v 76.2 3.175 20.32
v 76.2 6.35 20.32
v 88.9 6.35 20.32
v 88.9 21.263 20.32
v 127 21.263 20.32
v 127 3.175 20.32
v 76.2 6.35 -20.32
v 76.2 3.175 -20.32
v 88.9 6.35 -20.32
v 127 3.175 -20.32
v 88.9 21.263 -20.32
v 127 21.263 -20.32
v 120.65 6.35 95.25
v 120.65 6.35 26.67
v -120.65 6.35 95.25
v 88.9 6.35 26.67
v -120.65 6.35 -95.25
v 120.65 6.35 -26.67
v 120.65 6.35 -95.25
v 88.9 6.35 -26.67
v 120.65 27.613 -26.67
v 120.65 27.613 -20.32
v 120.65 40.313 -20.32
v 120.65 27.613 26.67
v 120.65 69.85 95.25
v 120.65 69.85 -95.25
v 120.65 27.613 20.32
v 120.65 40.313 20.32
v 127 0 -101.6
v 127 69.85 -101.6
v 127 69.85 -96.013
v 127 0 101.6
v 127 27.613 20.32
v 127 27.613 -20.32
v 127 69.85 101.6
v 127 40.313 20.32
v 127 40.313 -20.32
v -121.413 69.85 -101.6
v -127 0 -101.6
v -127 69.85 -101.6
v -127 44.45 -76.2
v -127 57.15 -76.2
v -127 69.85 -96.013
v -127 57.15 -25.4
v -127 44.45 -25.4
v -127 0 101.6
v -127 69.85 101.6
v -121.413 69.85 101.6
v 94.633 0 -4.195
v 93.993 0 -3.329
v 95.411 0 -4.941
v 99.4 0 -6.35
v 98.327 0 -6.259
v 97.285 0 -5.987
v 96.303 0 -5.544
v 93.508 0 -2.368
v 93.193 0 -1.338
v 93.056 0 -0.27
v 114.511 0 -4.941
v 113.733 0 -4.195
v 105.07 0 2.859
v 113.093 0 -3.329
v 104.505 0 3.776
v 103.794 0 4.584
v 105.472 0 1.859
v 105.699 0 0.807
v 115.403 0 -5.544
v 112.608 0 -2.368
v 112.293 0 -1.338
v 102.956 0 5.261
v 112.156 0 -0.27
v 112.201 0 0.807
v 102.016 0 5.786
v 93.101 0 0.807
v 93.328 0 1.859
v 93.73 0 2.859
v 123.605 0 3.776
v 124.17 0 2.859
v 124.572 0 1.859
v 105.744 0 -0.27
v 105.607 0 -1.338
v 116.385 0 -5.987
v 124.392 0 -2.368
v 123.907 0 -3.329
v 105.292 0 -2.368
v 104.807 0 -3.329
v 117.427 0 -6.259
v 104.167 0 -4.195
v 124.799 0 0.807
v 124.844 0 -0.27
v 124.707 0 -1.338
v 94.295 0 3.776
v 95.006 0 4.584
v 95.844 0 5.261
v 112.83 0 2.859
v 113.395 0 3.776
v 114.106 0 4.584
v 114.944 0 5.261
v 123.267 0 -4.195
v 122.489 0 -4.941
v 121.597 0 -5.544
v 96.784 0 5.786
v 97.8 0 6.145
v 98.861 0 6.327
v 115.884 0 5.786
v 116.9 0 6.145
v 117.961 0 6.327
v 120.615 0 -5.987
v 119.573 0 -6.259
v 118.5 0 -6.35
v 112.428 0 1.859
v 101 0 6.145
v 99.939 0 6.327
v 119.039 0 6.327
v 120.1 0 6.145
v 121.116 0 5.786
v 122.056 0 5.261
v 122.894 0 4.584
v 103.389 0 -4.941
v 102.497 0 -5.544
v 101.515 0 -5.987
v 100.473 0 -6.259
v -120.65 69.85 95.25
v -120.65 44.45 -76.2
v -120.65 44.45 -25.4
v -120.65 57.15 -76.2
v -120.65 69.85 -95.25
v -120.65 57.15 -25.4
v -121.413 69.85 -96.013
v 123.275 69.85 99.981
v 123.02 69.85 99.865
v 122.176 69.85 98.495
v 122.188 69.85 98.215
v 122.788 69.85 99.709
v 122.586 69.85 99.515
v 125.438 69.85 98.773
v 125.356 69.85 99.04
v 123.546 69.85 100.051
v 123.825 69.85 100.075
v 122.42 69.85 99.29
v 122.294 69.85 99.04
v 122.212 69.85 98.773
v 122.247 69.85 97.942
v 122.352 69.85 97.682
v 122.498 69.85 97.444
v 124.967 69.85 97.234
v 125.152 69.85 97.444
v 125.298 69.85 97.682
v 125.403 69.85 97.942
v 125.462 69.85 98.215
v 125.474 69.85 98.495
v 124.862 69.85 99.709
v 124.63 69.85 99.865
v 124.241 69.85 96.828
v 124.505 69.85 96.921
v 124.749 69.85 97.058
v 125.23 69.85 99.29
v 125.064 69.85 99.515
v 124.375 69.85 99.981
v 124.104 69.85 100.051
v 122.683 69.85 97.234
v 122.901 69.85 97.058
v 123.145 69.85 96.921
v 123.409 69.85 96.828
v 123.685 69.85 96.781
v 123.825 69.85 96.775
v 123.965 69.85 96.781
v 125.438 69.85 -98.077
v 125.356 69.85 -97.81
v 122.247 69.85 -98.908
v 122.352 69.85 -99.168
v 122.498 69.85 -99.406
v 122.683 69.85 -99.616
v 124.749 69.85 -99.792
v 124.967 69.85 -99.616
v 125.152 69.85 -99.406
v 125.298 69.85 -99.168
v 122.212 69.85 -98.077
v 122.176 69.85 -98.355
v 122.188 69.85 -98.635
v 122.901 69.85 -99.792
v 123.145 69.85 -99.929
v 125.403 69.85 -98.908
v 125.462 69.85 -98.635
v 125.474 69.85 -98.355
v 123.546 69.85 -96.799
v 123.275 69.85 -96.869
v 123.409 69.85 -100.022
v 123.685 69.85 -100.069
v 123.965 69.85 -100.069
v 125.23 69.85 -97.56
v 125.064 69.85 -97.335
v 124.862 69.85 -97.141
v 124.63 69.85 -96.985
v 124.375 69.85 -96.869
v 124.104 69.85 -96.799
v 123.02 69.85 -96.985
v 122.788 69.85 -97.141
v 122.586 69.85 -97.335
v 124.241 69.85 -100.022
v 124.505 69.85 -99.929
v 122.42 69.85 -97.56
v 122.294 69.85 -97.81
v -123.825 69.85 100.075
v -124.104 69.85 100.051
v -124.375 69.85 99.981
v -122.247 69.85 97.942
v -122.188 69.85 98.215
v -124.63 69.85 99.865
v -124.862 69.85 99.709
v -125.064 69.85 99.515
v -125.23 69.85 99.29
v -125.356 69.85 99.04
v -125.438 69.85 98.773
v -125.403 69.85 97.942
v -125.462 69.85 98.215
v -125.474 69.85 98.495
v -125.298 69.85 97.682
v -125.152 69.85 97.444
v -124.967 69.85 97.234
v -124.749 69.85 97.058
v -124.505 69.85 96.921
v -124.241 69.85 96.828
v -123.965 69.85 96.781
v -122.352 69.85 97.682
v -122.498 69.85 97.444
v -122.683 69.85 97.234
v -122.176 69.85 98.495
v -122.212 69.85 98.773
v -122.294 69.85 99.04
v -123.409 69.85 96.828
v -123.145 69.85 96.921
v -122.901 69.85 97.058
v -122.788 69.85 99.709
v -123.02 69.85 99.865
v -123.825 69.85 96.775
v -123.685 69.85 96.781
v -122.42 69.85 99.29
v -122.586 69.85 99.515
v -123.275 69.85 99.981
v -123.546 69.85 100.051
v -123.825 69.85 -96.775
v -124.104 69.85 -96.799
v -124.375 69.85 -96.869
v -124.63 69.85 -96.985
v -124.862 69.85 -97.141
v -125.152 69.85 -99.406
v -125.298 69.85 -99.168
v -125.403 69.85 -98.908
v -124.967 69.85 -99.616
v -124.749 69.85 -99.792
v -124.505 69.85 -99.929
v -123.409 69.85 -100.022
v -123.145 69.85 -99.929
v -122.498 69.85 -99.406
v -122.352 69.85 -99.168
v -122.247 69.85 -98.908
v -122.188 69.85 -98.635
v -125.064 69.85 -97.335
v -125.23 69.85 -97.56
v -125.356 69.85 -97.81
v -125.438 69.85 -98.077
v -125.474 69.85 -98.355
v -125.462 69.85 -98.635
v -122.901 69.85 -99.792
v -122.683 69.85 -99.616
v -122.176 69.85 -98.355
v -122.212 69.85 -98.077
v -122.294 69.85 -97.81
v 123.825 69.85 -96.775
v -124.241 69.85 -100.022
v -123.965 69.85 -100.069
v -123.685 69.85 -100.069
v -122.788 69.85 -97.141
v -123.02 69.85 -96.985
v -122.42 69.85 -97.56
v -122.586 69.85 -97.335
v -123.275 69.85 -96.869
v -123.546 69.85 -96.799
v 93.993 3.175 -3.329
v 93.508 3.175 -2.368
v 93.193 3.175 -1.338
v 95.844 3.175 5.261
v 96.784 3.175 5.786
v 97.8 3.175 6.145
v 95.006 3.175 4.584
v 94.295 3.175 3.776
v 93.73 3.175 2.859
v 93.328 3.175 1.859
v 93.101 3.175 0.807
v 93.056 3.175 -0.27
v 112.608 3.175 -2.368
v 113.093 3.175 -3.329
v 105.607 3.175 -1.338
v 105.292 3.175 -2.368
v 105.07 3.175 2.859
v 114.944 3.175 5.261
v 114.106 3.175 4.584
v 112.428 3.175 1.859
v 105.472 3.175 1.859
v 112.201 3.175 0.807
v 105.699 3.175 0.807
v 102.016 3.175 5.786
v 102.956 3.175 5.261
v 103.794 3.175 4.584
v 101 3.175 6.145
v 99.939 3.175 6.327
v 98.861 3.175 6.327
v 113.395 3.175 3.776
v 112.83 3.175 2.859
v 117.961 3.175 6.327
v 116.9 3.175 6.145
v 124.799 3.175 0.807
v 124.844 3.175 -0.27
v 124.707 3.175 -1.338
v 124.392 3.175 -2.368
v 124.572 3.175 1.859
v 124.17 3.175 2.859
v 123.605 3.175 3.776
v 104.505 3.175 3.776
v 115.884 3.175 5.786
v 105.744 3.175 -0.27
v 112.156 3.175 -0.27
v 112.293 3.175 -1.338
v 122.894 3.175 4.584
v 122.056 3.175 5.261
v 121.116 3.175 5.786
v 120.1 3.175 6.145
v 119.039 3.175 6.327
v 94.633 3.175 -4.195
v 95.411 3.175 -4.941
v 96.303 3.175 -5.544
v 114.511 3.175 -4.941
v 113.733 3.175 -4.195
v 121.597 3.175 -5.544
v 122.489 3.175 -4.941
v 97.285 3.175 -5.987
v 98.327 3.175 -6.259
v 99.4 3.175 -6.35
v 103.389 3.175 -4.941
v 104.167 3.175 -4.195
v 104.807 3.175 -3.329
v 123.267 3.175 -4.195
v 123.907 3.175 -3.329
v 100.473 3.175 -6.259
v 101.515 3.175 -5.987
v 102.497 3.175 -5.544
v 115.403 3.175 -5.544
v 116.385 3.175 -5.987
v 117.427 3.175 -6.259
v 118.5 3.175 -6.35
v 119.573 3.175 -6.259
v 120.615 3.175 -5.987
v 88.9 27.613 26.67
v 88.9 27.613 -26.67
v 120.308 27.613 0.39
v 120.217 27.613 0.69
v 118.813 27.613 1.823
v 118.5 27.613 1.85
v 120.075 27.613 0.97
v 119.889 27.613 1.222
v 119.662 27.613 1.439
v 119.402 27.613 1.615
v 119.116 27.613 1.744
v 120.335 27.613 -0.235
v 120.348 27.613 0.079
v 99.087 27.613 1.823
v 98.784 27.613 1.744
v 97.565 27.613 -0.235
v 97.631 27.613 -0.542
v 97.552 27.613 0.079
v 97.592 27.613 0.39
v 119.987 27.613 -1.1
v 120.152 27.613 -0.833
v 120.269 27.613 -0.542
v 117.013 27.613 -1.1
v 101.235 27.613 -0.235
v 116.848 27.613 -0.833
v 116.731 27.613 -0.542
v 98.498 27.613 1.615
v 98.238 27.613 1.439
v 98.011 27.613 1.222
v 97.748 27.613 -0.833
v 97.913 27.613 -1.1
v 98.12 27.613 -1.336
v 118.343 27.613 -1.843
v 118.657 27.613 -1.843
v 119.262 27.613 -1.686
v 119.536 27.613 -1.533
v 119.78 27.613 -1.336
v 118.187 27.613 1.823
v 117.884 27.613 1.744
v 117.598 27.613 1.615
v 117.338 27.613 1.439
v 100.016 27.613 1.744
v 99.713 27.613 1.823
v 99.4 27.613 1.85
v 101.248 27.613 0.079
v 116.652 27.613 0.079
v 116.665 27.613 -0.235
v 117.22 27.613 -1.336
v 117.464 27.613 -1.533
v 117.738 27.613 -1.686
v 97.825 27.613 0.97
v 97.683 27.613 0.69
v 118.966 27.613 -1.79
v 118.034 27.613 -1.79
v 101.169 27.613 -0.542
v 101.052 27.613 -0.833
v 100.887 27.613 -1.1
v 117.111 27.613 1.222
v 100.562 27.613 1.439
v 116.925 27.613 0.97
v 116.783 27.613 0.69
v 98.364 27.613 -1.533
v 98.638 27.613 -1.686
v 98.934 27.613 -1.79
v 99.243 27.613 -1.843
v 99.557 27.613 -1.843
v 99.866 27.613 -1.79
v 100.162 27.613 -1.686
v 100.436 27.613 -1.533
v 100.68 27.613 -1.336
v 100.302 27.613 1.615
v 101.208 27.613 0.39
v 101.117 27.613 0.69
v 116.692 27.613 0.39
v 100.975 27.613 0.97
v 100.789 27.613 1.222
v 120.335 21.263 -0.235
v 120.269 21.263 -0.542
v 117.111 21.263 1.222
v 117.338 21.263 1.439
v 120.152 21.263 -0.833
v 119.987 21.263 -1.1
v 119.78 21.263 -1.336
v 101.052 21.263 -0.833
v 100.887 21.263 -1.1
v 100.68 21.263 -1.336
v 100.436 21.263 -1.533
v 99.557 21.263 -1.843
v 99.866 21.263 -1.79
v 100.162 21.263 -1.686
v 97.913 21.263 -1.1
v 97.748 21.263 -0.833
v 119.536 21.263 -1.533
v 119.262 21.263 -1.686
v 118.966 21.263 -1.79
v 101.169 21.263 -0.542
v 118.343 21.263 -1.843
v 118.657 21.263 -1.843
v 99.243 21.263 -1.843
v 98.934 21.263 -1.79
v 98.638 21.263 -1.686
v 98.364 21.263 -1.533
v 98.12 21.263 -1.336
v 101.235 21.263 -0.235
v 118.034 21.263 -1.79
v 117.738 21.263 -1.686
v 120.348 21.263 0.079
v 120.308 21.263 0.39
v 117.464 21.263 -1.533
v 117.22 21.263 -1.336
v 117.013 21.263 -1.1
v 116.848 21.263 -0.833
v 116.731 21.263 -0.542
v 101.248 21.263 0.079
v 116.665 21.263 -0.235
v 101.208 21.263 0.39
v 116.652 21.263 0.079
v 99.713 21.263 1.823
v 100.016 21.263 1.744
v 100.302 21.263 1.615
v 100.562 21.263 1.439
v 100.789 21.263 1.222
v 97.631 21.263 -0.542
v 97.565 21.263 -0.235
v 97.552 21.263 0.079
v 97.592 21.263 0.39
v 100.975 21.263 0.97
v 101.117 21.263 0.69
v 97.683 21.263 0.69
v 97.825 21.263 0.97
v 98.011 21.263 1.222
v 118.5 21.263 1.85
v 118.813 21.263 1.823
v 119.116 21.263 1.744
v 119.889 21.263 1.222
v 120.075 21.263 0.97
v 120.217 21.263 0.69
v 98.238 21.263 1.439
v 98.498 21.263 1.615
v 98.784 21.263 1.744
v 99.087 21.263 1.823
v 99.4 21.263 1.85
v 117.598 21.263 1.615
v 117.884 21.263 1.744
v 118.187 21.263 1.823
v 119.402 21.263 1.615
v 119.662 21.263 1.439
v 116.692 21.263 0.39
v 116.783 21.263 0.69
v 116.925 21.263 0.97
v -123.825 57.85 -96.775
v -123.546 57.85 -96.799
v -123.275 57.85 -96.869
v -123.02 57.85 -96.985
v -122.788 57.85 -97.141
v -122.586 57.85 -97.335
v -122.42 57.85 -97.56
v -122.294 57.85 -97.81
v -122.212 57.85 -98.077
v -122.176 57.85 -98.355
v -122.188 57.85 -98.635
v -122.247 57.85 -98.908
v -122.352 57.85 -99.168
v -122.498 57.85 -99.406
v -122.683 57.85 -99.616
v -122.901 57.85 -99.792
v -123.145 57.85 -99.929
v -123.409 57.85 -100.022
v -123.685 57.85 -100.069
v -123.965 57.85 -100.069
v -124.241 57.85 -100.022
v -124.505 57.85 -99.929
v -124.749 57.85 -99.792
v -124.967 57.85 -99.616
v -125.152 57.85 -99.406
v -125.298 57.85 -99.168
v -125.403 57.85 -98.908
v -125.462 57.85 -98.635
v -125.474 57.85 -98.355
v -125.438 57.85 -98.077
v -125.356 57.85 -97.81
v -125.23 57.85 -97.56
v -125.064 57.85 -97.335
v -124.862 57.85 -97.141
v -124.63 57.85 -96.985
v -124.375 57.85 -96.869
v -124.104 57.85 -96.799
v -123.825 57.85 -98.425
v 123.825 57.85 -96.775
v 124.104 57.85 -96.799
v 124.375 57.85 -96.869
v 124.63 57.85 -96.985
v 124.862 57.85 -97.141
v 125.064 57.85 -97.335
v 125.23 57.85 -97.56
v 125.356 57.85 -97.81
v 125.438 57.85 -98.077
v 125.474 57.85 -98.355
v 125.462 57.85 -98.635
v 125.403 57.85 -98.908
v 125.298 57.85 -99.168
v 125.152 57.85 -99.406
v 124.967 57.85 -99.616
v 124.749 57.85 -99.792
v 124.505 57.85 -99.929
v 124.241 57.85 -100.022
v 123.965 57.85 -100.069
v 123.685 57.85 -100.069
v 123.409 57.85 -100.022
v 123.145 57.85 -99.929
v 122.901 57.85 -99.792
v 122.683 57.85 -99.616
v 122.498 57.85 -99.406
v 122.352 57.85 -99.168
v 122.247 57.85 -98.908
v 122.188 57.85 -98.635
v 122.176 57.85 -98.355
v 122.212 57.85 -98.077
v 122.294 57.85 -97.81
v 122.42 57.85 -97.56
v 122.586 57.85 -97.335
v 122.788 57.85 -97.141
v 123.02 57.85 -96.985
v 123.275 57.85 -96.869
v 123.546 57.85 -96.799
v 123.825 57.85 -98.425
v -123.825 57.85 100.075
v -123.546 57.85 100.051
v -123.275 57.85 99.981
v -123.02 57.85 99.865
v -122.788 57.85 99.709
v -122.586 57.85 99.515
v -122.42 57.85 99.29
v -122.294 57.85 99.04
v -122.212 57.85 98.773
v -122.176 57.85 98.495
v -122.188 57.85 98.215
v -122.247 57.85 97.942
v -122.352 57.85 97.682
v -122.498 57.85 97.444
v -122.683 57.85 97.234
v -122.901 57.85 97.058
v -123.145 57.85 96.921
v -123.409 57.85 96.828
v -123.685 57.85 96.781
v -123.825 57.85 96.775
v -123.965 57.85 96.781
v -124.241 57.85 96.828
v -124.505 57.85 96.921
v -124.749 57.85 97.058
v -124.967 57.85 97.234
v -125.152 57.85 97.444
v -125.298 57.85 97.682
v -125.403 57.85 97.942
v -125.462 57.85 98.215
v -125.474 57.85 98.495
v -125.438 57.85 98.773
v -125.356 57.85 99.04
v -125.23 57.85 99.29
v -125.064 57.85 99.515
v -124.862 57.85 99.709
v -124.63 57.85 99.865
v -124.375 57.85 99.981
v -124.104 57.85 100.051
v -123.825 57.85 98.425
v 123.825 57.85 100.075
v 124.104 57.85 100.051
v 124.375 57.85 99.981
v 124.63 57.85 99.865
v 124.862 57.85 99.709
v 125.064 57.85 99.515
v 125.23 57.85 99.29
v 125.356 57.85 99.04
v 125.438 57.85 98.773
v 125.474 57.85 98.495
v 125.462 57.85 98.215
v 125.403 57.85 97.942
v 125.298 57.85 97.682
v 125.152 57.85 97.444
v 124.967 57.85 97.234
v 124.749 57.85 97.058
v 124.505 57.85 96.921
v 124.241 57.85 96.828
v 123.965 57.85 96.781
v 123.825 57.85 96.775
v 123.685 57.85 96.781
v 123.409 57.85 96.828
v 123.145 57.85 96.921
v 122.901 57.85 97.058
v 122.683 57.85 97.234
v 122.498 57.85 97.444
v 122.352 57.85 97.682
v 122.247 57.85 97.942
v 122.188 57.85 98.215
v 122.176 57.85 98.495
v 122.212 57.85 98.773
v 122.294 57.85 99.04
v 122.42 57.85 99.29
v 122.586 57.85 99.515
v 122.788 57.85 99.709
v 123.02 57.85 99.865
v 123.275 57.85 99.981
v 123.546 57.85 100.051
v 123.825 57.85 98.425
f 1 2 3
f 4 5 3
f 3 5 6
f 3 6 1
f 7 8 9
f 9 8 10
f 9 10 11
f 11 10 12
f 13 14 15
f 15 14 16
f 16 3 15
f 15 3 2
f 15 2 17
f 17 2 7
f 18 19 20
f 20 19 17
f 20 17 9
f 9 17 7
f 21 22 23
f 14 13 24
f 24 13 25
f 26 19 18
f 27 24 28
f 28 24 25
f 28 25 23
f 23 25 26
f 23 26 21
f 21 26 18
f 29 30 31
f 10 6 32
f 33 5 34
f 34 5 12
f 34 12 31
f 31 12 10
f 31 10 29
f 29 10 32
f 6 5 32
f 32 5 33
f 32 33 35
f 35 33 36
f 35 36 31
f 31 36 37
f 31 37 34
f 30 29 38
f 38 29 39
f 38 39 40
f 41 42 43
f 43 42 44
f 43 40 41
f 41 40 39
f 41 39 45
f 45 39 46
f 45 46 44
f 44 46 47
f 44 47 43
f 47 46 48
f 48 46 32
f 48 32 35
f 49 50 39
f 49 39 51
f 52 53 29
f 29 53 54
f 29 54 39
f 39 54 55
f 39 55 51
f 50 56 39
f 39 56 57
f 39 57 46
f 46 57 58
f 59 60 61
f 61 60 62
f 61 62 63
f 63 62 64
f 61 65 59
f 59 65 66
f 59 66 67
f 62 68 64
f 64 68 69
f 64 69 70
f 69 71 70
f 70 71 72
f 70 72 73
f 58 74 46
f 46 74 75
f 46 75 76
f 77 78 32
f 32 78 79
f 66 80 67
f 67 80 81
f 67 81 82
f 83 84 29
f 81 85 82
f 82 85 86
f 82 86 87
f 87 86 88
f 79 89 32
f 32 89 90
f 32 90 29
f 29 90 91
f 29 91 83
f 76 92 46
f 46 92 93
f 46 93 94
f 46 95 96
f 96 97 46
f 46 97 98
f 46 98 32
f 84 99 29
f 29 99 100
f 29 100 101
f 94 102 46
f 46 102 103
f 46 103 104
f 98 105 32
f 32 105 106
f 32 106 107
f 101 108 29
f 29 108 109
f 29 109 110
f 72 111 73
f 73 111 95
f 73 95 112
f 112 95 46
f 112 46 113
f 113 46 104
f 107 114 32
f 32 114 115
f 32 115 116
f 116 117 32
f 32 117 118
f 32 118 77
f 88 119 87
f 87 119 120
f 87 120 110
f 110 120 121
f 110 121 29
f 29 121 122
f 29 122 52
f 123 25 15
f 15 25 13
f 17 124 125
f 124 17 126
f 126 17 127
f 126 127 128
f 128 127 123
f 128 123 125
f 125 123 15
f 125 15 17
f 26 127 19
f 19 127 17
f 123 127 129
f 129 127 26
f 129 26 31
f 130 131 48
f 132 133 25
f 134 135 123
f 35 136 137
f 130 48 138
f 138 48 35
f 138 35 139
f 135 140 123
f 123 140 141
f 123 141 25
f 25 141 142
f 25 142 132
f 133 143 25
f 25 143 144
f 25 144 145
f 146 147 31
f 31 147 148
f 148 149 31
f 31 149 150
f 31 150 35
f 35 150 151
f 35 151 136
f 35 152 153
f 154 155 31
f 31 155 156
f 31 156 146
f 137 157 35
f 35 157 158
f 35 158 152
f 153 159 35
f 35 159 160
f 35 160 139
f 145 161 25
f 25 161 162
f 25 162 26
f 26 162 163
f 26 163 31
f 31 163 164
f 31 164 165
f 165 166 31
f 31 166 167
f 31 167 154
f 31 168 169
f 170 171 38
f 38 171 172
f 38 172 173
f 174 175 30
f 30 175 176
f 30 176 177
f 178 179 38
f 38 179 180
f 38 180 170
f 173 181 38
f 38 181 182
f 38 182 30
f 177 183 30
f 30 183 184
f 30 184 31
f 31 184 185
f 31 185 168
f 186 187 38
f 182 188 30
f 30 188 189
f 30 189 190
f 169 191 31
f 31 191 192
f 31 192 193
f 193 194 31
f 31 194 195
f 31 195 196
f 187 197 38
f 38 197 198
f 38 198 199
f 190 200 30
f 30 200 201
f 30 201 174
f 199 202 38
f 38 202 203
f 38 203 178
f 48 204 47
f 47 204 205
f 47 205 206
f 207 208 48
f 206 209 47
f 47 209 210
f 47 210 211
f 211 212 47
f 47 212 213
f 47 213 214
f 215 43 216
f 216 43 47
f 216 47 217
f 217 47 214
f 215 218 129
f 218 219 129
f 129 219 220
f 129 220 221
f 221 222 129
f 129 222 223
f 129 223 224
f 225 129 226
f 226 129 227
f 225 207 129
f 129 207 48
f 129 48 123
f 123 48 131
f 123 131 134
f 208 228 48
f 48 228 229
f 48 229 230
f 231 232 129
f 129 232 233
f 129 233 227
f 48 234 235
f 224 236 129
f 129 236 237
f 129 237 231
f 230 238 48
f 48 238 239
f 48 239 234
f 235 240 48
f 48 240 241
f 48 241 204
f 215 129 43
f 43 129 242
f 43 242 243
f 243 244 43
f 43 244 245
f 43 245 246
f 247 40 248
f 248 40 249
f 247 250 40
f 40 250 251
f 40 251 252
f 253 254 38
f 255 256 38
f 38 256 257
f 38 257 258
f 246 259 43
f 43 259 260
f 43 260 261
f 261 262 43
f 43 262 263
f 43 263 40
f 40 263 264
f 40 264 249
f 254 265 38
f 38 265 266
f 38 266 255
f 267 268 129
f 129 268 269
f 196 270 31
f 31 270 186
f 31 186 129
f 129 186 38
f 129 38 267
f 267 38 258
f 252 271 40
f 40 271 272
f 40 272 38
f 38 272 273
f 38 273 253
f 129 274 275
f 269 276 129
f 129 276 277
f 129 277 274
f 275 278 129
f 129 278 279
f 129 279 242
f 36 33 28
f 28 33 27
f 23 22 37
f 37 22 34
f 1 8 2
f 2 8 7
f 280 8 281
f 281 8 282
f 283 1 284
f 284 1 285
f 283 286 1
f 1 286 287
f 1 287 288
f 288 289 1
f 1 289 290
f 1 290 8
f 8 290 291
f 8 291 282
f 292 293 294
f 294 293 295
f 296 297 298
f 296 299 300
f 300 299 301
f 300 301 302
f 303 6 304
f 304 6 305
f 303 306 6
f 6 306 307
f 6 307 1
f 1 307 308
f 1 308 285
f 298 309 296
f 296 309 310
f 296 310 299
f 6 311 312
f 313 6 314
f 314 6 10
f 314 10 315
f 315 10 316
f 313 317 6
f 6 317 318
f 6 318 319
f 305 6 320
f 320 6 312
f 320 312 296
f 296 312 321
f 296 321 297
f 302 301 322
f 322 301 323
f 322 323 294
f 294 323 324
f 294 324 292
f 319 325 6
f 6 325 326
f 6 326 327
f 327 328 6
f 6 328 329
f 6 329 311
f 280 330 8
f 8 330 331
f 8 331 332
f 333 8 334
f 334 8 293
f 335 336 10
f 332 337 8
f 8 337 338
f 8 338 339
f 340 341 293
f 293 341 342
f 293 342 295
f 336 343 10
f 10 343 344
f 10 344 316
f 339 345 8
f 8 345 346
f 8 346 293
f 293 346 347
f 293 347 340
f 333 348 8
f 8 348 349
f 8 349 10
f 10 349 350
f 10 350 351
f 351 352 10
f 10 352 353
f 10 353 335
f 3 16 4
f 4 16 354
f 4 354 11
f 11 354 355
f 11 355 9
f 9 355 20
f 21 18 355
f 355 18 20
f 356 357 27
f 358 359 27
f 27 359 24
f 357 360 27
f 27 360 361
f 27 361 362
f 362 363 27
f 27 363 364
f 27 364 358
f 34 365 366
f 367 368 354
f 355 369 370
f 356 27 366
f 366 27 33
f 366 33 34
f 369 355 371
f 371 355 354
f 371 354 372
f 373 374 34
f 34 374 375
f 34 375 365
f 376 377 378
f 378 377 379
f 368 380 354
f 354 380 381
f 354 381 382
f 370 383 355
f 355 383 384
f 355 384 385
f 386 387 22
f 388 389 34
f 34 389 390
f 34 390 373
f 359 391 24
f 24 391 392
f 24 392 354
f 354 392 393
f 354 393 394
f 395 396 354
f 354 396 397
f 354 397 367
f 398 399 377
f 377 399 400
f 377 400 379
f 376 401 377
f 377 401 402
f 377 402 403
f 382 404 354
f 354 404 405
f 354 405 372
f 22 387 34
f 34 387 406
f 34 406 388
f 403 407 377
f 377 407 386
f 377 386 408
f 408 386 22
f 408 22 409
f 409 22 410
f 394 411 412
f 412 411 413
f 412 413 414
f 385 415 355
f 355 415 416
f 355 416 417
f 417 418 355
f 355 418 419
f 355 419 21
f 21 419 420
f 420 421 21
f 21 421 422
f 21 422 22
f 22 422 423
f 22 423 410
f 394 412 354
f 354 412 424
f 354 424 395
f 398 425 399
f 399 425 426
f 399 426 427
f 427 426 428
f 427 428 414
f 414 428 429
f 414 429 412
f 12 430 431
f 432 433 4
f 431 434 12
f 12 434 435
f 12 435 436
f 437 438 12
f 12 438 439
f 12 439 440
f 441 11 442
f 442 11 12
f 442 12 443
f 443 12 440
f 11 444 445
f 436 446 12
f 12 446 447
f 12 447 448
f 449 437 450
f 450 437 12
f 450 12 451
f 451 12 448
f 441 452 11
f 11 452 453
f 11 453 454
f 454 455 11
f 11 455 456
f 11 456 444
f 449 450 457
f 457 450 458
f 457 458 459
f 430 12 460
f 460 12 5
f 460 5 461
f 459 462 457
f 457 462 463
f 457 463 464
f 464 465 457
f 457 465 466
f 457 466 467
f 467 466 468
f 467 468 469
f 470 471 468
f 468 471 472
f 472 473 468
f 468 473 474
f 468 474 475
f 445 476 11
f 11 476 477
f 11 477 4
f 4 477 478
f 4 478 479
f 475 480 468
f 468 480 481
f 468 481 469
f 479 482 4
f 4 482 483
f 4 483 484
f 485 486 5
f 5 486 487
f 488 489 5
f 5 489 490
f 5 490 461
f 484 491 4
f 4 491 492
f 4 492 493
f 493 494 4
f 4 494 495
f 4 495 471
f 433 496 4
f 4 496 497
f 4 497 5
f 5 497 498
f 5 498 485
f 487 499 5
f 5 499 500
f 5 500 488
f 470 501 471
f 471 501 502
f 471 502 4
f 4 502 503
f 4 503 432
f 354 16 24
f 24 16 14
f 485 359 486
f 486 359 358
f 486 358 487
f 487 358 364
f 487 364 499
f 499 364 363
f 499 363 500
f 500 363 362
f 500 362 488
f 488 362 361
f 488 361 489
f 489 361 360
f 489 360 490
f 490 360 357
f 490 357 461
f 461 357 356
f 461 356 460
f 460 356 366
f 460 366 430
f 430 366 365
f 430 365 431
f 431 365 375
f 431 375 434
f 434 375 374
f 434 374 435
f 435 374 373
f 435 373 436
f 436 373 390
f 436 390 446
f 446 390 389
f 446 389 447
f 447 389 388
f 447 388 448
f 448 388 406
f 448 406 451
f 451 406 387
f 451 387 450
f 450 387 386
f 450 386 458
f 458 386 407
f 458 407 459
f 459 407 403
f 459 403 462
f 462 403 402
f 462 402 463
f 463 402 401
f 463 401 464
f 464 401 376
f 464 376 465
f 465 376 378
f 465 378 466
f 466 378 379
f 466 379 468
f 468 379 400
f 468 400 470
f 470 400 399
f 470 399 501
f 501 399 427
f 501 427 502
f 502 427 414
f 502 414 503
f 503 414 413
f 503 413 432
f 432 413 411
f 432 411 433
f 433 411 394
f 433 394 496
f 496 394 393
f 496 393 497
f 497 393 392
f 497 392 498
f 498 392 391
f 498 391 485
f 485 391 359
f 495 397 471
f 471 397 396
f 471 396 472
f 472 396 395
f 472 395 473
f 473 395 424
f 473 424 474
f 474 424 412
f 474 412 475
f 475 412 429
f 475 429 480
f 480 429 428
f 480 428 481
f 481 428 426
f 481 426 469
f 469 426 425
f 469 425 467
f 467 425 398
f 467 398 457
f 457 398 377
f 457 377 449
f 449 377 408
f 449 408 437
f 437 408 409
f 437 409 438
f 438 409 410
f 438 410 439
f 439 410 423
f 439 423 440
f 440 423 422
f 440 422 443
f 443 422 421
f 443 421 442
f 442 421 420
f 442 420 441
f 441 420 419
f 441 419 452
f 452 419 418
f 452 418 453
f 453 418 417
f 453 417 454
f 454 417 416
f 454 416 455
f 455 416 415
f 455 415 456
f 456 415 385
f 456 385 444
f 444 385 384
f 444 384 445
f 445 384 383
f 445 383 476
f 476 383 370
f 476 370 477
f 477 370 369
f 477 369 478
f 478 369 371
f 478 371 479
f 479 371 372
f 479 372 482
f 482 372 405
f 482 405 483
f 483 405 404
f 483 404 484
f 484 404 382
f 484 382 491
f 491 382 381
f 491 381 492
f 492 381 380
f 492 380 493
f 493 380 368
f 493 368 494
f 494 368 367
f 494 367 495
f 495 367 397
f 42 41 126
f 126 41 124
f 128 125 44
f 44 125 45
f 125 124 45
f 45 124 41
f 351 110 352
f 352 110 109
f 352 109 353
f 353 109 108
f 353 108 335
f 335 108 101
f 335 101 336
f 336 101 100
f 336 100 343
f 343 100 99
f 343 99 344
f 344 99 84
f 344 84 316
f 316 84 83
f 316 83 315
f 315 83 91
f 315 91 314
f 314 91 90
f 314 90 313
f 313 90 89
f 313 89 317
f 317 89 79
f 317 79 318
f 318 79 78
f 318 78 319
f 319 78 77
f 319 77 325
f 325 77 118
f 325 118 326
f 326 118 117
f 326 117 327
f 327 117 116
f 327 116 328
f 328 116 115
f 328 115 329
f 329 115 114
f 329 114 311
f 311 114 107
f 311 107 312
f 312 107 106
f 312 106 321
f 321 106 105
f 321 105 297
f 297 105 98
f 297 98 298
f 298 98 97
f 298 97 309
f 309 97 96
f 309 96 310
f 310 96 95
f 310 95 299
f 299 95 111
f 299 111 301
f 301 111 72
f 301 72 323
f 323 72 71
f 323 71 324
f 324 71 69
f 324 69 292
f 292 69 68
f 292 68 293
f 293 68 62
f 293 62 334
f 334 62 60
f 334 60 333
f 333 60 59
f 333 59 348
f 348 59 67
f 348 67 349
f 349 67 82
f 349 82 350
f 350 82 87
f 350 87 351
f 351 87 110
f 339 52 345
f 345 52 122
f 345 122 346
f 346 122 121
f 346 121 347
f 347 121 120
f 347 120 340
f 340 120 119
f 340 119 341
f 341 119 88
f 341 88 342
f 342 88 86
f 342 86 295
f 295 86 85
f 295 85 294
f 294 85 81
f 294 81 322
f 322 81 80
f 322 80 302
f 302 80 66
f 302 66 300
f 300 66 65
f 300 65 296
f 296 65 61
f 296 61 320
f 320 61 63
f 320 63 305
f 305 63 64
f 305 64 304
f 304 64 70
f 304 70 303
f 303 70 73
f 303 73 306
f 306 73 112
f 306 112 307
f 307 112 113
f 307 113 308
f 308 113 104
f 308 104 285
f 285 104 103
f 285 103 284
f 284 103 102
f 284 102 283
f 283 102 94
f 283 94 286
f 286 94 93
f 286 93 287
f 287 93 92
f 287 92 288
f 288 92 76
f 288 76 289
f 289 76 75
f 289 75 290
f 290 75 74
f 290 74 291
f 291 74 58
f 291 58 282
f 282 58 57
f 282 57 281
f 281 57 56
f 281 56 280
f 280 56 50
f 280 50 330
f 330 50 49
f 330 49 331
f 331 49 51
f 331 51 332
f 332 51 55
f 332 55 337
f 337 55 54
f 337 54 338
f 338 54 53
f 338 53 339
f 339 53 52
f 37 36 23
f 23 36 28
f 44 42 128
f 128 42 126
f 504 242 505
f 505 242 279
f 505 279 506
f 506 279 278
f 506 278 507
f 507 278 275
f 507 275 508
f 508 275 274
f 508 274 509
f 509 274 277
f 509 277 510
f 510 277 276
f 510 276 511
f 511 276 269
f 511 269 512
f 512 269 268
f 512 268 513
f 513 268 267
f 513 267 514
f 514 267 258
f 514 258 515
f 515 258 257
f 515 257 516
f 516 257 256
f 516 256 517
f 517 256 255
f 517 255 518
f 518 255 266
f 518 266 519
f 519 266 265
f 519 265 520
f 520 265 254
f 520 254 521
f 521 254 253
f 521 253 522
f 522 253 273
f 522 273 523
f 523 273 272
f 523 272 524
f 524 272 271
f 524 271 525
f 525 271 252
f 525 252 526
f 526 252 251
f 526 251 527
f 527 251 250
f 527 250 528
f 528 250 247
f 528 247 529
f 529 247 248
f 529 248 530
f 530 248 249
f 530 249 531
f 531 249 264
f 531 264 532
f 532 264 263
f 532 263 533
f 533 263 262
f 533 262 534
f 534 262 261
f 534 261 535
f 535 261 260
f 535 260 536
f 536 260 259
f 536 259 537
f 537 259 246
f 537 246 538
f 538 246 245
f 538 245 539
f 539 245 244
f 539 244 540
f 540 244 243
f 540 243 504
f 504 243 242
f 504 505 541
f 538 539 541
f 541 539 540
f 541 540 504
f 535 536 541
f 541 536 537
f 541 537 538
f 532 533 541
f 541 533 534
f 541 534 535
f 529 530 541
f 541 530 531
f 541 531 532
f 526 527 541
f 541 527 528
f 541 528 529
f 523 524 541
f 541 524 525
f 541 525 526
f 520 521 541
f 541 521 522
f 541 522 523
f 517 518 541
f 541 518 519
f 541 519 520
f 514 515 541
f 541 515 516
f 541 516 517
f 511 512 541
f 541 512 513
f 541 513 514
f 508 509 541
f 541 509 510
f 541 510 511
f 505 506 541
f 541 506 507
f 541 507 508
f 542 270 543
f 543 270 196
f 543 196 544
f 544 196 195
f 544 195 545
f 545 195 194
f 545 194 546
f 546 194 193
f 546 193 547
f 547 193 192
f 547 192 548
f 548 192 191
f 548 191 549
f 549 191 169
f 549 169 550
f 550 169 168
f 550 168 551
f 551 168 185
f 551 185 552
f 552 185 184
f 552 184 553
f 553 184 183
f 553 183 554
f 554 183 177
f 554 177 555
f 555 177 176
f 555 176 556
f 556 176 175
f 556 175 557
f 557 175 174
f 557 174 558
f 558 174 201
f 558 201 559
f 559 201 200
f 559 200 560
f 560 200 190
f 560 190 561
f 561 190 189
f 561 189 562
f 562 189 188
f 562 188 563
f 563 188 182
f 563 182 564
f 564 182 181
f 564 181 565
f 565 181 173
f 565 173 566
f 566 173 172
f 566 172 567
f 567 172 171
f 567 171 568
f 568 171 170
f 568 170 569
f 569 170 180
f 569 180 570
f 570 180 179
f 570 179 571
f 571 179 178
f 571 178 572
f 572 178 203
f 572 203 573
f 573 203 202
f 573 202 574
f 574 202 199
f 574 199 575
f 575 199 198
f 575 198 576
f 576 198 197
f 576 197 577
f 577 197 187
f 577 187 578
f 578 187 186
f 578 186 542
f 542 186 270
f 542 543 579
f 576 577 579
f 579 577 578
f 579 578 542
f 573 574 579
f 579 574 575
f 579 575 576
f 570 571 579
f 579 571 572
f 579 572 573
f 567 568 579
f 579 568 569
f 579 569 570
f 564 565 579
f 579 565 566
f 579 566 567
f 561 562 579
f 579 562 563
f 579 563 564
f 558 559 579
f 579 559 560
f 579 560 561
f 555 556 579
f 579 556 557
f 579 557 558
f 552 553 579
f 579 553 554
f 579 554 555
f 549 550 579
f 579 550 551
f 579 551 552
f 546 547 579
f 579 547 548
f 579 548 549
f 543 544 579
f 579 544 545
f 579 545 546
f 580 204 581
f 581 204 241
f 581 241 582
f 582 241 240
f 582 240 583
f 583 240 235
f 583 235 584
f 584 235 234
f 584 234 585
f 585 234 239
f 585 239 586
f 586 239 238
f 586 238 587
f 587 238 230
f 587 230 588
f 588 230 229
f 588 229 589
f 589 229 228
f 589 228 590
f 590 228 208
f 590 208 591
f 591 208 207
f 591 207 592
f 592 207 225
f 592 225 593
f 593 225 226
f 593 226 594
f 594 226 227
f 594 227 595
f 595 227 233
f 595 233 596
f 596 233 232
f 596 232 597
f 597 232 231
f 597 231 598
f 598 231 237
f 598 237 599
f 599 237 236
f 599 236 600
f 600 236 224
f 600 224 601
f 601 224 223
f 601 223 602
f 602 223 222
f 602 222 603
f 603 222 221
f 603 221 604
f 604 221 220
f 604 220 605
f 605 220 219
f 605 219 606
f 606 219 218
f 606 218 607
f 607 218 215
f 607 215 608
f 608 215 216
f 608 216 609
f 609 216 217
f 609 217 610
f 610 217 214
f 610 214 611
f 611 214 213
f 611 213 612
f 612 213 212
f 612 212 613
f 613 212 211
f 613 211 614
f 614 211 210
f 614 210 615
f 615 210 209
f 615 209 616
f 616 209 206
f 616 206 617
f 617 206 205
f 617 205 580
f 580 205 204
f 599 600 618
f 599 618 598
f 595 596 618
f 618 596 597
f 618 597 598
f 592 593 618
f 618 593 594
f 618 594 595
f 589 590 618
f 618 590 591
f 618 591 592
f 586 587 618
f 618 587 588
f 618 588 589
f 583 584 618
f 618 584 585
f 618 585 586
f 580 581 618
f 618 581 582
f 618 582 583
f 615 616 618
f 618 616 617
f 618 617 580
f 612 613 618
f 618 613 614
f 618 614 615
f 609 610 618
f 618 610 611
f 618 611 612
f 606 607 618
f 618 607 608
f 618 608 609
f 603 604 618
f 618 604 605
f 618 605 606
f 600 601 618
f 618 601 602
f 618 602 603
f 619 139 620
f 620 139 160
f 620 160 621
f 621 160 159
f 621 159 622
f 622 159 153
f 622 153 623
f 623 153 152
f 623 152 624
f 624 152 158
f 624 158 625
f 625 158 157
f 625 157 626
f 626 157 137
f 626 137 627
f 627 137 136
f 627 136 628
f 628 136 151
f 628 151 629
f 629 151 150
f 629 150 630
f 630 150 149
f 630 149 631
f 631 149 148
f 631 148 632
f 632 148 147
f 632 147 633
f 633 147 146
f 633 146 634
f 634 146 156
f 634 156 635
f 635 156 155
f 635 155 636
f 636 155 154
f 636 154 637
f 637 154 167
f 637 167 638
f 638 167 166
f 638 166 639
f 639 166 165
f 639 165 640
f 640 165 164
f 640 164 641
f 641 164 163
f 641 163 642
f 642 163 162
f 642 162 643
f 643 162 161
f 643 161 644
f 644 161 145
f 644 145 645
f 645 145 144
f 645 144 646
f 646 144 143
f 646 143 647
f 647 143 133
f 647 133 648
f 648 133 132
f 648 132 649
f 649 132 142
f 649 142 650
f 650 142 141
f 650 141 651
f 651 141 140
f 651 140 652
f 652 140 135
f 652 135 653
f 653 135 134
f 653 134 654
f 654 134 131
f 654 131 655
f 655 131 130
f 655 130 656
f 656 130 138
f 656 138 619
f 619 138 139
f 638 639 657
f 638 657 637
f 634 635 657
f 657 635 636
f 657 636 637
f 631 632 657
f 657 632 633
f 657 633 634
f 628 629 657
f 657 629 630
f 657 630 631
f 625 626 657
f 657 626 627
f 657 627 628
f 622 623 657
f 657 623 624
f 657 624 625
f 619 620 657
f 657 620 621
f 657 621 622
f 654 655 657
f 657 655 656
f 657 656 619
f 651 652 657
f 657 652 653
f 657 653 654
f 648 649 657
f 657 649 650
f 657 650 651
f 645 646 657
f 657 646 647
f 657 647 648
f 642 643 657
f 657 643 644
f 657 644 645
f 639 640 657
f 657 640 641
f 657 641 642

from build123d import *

# Parameters (mm, degrees)
SKETCH1_W                                  = 254
SKETCH1_H                                  = 203.2
BOSS_EXTRUDE1_DEPTH                        = 6.35
SKETCH2_W                                  = 6.35
SKETCH2_H                                  = 190.5
BOSS_EXTRUDE2_DEPTH                        = 63.5
SKETCH3_W                                  = 6.35
SKETCH3_H                                  = 40.64
CUT_EXTRUDE1_DEPTH                         = 63.5
SKETCH4_W                                  = 50.8
SKETCH4_H                                  = 40.64
CUT_EXTRUDE2_DEPTH                         = 3.175
SKETCH5_W                                  = 31.75
SKETCH5_H                                  = 6.35
BOSS_EXTRUDE3_DEPTH                        = 14.912951806
SKETCH6_W                                  = 38.1
SKETCH6_H                                  = 26.67
BOSS_EXTRUDE4_DEPTH                        = 6.35
CUT_EXTRUDE3_REACH                         = 170.034
SKETCH7_R                                  = 1.85
SKETCH8_W                                  = 6.35
SKETCH8_H                                  = 50.8
CUT_EXTRUDE4_DEPTH                         = 25.4
CUT_EXTRUDE5_REACH                         = 179.004
SKETCH9_R                                  = 6.35
SKETCH10_W                                 = 40.64
SKETCH10_H                                 = 29.537048194
BOSS_EXTRUDE5_DEPTH                        = 6.35
SKETCH11_W                                 = 50.8
SKETCH11_H                                 = 12.7
BOSS_EXTRUDE6_DEPTH                        = 6.35
SKETCH12_R                                 = 1.65
CUT_EXTRUDE6_DEPTH                         = 12
MIRROR2_AT_THE_SECOND_PLANE_COPY_1_SKETC_R = 1.65
MIRROR2_AT_THE_SECOND_PLANE_COPY_1_DEPTH   = 12


with BuildPart() as part:
    # Sketch1 → Boss-Extrude1 (new body)
    with BuildSketch(Plane(origin=(0, 0, 0), x_dir=(1, 0, 0), z_dir=(0, 1, 0))):
        Rectangle(SKETCH1_W, SKETCH1_H)
    extrude(amount=BOSS_EXTRUDE1_DEPTH)

    # Sketch2 → Boss-Extrude2 (add)
    with BuildSketch(Plane(origin=(0, 6.35, 0), x_dir=(1, 0, 0), z_dir=(0, 1, 0))):
        with Locations((-123.825, 0)):
            Rectangle(SKETCH2_W, SKETCH2_H)
        Polygon((127, 101.6), (-127, 101.6), (-127, 95.25), (-120.65, 95.25), (120.65, 95.25), (127, 95.25), align=None)
        with Locations((123.825, 0)):
            Rectangle(SKETCH2_W, SKETCH2_H)
        Polygon((-120.65, -95.25), (-127, -95.25), (-127, -101.6), (127, -101.6), (127, -95.25), (120.65, -95.25), align=None)
    extrude(amount=BOSS_EXTRUDE2_DEPTH)

    # Sketch3 → Cut-Extrude1 (cut)
    with BuildSketch(Plane(origin=(0, 69.85, 0), x_dir=(1, 0, 0), z_dir=(0, 1, 0))):
        with Locations((123.825, 0)):
            Rectangle(SKETCH3_W, SKETCH3_H)
    extrude(amount=-CUT_EXTRUDE1_DEPTH, mode=Mode.SUBTRACT)

    # Sketch4 → Cut-Extrude2 (cut)
    with BuildSketch(Plane(origin=(0, 6.35, 0), x_dir=(1, 0, 0), z_dir=(0, 1, 0))):
        with Locations((101.6, 0)):
            Rectangle(SKETCH4_W, SKETCH4_H)
    extrude(amount=-CUT_EXTRUDE2_DEPTH, mode=Mode.SUBTRACT)

    # Sketch5 → Boss-Extrude3 (add)
    with BuildSketch(Plane(origin=(0, 6.35, 0), x_dir=(1, 0, 0), z_dir=(0, 1, 0))):
        with Locations((104.775, 23.495)):
            Rectangle(SKETCH5_W, SKETCH5_H)
    boss_extrude3 = extrude(amount=BOSS_EXTRUDE3_DEPTH)

    # Sketch6 → Boss-Extrude4 (add)
    with BuildSketch(Plane(origin=(0, 21.262951806, 0), x_dir=(1, 0, 0), z_dir=(0, 1, 0))):
        with Locations((107.95, 13.335)):
            Rectangle(SKETCH6_W, SKETCH6_H)
    boss_extrude4 = extrude(amount=BOSS_EXTRUDE4_DEPTH)

    # Mirror1: Boss-Extrude3, Boss-Extrude4 across plane
    add(boss_extrude3.mirror(Plane.XY))
    add(boss_extrude4.mirror(Plane.XY))

    # Sketch7 → Cut-Extrude3 (cut, up to next)
    with BuildSketch(Plane(origin=(0, 27.612951806, 0), x_dir=(1, 0, 0), z_dir=(0, 1, 0)), mode=Mode.PRIVATE) as cut_extrude3_sk1:
        with Locations(Location((99.4, 0, 0), (0, 0, 270))):
            Circle(SKETCH7_R)
    cut_extrude3_tool1 = extrude(cut_extrude3_sk1.sketch, amount=-CUT_EXTRUDE3_REACH, mode=Mode.PRIVATE) & part.part
    # Sketch7 → Cut-Extrude3 (cut, up to next)
    with BuildSketch(Plane(origin=(0, 27.612951806, 0), x_dir=(1, 0, 0), z_dir=(0, 1, 0)), mode=Mode.PRIVATE) as cut_extrude3_sk2:
        with Locations(Location((118.5, 0, 0), (0, 0, 270))):
            Circle(SKETCH7_R)
    cut_extrude3_tool2 = extrude(cut_extrude3_sk2.sketch, amount=-CUT_EXTRUDE3_REACH, mode=Mode.PRIVATE) & part.part
    add(cut_extrude3_tool1.solids().sort_by_distance((99.4, 27.612952, 0))[0], mode=Mode.SUBTRACT)
    add(cut_extrude3_tool2.solids().sort_by_distance((118.5, 27.612952, 0))[0], mode=Mode.SUBTRACT)

    # Sketch8 → Cut-Extrude4 (cut)
    with BuildSketch(Plane(origin=(0, 69.85, 0), x_dir=(1, 0, 0), z_dir=(0, 1, 0))):
        with Locations((-123.825, 50.8)):
            Rectangle(SKETCH8_W, SKETCH8_H)
    extrude(amount=-CUT_EXTRUDE4_DEPTH, mode=Mode.SUBTRACT)

    # Sketch9 → Cut-Extrude5 (cut, up to next)
    with BuildSketch(Plane.XZ, mode=Mode.PRIVATE) as cut_extrude5_sk1:
        with Locations(Location((99.4, 0, 0), (0, 0, 270))):
            Circle(SKETCH9_R)
    cut_extrude5_tool1 = extrude(cut_extrude5_sk1.sketch, amount=-CUT_EXTRUDE5_REACH, mode=Mode.PRIVATE) & part.part
    # Sketch9 → Cut-Extrude5 (cut, up to next)
    with BuildSketch(Plane.XZ, mode=Mode.PRIVATE) as cut_extrude5_sk2:
        with Locations(Location((118.5, 0, 0), (0, 0, 270))):
            Circle(SKETCH9_R)
    cut_extrude5_tool2 = extrude(cut_extrude5_sk2.sketch, amount=-CUT_EXTRUDE5_REACH, mode=Mode.PRIVATE) & part.part
    add(cut_extrude5_tool1.solids().sort_by_distance((99.4, 0, 0))[0], mode=Mode.SUBTRACT)
    add(cut_extrude5_tool2.solids().sort_by_distance((118.5, 0, 0))[0], mode=Mode.SUBTRACT)

    # Sketch10 → Boss-Extrude5 (add)
    with BuildSketch(Plane(origin=(127, 0, 0), x_dir=(0, 0, -1), z_dir=(1, 0, 0))):
        with Locations((0, 55.081475903)):
            Rectangle(SKETCH10_W, SKETCH10_H)
    extrude(amount=-BOSS_EXTRUDE5_DEPTH)

    # Sketch11 → Boss-Extrude6 (add)
    with BuildSketch(Plane.ZY.offset(127)):
        with Locations((-50.8, 63.5)):
            Rectangle(SKETCH11_W, SKETCH11_H)
    extrude(amount=-BOSS_EXTRUDE6_DEPTH)

    # Sketch12 → Cut-Extrude6 (cut)
    with BuildSketch(Plane(origin=(0, 69.85, 0), x_dir=(1, 0, 0), z_dir=(0, 1, 0))):
        with Locations(Location((-123.825, 98.425, 0), (0, 0, 270))):
            Circle(SKETCH12_R)
    cut_extrude6 = extrude(amount=-CUT_EXTRUDE6_DEPTH, mode=Mode.SUBTRACT)

    # Mirror2: Cut-Extrude6 across plane
    add(cut_extrude6.mirror(Plane.XY), mode=Mode.SUBTRACT)

    # Mirror2 at the second plane: Cut-Extrude6 across plane
    add(cut_extrude6.mirror(Plane(origin=(0, 0, 0), x_dir=(0, 0, 1), z_dir=(1, 0, 0))), mode=Mode.SUBTRACT)

    # Mirror2 at the second plane copy 1 sketc → Mirror2 at the second plane copy 1 (cut)
    with BuildSketch(Plane(origin=(0, 69.85, 0), x_dir=(-1, 0, 0), z_dir=(0, 1, 0))):
        with Locations(Location((-123.825, 98.425, 0), (0, 0, 270))):
            Circle(MIRROR2_AT_THE_SECOND_PLANE_COPY_1_SKETC_R)
    extrude(amount=-MIRROR2_AT_THE_SECOND_PLANE_COPY_1_DEPTH, mode=Mode.SUBTRACT)


solid = part.part
